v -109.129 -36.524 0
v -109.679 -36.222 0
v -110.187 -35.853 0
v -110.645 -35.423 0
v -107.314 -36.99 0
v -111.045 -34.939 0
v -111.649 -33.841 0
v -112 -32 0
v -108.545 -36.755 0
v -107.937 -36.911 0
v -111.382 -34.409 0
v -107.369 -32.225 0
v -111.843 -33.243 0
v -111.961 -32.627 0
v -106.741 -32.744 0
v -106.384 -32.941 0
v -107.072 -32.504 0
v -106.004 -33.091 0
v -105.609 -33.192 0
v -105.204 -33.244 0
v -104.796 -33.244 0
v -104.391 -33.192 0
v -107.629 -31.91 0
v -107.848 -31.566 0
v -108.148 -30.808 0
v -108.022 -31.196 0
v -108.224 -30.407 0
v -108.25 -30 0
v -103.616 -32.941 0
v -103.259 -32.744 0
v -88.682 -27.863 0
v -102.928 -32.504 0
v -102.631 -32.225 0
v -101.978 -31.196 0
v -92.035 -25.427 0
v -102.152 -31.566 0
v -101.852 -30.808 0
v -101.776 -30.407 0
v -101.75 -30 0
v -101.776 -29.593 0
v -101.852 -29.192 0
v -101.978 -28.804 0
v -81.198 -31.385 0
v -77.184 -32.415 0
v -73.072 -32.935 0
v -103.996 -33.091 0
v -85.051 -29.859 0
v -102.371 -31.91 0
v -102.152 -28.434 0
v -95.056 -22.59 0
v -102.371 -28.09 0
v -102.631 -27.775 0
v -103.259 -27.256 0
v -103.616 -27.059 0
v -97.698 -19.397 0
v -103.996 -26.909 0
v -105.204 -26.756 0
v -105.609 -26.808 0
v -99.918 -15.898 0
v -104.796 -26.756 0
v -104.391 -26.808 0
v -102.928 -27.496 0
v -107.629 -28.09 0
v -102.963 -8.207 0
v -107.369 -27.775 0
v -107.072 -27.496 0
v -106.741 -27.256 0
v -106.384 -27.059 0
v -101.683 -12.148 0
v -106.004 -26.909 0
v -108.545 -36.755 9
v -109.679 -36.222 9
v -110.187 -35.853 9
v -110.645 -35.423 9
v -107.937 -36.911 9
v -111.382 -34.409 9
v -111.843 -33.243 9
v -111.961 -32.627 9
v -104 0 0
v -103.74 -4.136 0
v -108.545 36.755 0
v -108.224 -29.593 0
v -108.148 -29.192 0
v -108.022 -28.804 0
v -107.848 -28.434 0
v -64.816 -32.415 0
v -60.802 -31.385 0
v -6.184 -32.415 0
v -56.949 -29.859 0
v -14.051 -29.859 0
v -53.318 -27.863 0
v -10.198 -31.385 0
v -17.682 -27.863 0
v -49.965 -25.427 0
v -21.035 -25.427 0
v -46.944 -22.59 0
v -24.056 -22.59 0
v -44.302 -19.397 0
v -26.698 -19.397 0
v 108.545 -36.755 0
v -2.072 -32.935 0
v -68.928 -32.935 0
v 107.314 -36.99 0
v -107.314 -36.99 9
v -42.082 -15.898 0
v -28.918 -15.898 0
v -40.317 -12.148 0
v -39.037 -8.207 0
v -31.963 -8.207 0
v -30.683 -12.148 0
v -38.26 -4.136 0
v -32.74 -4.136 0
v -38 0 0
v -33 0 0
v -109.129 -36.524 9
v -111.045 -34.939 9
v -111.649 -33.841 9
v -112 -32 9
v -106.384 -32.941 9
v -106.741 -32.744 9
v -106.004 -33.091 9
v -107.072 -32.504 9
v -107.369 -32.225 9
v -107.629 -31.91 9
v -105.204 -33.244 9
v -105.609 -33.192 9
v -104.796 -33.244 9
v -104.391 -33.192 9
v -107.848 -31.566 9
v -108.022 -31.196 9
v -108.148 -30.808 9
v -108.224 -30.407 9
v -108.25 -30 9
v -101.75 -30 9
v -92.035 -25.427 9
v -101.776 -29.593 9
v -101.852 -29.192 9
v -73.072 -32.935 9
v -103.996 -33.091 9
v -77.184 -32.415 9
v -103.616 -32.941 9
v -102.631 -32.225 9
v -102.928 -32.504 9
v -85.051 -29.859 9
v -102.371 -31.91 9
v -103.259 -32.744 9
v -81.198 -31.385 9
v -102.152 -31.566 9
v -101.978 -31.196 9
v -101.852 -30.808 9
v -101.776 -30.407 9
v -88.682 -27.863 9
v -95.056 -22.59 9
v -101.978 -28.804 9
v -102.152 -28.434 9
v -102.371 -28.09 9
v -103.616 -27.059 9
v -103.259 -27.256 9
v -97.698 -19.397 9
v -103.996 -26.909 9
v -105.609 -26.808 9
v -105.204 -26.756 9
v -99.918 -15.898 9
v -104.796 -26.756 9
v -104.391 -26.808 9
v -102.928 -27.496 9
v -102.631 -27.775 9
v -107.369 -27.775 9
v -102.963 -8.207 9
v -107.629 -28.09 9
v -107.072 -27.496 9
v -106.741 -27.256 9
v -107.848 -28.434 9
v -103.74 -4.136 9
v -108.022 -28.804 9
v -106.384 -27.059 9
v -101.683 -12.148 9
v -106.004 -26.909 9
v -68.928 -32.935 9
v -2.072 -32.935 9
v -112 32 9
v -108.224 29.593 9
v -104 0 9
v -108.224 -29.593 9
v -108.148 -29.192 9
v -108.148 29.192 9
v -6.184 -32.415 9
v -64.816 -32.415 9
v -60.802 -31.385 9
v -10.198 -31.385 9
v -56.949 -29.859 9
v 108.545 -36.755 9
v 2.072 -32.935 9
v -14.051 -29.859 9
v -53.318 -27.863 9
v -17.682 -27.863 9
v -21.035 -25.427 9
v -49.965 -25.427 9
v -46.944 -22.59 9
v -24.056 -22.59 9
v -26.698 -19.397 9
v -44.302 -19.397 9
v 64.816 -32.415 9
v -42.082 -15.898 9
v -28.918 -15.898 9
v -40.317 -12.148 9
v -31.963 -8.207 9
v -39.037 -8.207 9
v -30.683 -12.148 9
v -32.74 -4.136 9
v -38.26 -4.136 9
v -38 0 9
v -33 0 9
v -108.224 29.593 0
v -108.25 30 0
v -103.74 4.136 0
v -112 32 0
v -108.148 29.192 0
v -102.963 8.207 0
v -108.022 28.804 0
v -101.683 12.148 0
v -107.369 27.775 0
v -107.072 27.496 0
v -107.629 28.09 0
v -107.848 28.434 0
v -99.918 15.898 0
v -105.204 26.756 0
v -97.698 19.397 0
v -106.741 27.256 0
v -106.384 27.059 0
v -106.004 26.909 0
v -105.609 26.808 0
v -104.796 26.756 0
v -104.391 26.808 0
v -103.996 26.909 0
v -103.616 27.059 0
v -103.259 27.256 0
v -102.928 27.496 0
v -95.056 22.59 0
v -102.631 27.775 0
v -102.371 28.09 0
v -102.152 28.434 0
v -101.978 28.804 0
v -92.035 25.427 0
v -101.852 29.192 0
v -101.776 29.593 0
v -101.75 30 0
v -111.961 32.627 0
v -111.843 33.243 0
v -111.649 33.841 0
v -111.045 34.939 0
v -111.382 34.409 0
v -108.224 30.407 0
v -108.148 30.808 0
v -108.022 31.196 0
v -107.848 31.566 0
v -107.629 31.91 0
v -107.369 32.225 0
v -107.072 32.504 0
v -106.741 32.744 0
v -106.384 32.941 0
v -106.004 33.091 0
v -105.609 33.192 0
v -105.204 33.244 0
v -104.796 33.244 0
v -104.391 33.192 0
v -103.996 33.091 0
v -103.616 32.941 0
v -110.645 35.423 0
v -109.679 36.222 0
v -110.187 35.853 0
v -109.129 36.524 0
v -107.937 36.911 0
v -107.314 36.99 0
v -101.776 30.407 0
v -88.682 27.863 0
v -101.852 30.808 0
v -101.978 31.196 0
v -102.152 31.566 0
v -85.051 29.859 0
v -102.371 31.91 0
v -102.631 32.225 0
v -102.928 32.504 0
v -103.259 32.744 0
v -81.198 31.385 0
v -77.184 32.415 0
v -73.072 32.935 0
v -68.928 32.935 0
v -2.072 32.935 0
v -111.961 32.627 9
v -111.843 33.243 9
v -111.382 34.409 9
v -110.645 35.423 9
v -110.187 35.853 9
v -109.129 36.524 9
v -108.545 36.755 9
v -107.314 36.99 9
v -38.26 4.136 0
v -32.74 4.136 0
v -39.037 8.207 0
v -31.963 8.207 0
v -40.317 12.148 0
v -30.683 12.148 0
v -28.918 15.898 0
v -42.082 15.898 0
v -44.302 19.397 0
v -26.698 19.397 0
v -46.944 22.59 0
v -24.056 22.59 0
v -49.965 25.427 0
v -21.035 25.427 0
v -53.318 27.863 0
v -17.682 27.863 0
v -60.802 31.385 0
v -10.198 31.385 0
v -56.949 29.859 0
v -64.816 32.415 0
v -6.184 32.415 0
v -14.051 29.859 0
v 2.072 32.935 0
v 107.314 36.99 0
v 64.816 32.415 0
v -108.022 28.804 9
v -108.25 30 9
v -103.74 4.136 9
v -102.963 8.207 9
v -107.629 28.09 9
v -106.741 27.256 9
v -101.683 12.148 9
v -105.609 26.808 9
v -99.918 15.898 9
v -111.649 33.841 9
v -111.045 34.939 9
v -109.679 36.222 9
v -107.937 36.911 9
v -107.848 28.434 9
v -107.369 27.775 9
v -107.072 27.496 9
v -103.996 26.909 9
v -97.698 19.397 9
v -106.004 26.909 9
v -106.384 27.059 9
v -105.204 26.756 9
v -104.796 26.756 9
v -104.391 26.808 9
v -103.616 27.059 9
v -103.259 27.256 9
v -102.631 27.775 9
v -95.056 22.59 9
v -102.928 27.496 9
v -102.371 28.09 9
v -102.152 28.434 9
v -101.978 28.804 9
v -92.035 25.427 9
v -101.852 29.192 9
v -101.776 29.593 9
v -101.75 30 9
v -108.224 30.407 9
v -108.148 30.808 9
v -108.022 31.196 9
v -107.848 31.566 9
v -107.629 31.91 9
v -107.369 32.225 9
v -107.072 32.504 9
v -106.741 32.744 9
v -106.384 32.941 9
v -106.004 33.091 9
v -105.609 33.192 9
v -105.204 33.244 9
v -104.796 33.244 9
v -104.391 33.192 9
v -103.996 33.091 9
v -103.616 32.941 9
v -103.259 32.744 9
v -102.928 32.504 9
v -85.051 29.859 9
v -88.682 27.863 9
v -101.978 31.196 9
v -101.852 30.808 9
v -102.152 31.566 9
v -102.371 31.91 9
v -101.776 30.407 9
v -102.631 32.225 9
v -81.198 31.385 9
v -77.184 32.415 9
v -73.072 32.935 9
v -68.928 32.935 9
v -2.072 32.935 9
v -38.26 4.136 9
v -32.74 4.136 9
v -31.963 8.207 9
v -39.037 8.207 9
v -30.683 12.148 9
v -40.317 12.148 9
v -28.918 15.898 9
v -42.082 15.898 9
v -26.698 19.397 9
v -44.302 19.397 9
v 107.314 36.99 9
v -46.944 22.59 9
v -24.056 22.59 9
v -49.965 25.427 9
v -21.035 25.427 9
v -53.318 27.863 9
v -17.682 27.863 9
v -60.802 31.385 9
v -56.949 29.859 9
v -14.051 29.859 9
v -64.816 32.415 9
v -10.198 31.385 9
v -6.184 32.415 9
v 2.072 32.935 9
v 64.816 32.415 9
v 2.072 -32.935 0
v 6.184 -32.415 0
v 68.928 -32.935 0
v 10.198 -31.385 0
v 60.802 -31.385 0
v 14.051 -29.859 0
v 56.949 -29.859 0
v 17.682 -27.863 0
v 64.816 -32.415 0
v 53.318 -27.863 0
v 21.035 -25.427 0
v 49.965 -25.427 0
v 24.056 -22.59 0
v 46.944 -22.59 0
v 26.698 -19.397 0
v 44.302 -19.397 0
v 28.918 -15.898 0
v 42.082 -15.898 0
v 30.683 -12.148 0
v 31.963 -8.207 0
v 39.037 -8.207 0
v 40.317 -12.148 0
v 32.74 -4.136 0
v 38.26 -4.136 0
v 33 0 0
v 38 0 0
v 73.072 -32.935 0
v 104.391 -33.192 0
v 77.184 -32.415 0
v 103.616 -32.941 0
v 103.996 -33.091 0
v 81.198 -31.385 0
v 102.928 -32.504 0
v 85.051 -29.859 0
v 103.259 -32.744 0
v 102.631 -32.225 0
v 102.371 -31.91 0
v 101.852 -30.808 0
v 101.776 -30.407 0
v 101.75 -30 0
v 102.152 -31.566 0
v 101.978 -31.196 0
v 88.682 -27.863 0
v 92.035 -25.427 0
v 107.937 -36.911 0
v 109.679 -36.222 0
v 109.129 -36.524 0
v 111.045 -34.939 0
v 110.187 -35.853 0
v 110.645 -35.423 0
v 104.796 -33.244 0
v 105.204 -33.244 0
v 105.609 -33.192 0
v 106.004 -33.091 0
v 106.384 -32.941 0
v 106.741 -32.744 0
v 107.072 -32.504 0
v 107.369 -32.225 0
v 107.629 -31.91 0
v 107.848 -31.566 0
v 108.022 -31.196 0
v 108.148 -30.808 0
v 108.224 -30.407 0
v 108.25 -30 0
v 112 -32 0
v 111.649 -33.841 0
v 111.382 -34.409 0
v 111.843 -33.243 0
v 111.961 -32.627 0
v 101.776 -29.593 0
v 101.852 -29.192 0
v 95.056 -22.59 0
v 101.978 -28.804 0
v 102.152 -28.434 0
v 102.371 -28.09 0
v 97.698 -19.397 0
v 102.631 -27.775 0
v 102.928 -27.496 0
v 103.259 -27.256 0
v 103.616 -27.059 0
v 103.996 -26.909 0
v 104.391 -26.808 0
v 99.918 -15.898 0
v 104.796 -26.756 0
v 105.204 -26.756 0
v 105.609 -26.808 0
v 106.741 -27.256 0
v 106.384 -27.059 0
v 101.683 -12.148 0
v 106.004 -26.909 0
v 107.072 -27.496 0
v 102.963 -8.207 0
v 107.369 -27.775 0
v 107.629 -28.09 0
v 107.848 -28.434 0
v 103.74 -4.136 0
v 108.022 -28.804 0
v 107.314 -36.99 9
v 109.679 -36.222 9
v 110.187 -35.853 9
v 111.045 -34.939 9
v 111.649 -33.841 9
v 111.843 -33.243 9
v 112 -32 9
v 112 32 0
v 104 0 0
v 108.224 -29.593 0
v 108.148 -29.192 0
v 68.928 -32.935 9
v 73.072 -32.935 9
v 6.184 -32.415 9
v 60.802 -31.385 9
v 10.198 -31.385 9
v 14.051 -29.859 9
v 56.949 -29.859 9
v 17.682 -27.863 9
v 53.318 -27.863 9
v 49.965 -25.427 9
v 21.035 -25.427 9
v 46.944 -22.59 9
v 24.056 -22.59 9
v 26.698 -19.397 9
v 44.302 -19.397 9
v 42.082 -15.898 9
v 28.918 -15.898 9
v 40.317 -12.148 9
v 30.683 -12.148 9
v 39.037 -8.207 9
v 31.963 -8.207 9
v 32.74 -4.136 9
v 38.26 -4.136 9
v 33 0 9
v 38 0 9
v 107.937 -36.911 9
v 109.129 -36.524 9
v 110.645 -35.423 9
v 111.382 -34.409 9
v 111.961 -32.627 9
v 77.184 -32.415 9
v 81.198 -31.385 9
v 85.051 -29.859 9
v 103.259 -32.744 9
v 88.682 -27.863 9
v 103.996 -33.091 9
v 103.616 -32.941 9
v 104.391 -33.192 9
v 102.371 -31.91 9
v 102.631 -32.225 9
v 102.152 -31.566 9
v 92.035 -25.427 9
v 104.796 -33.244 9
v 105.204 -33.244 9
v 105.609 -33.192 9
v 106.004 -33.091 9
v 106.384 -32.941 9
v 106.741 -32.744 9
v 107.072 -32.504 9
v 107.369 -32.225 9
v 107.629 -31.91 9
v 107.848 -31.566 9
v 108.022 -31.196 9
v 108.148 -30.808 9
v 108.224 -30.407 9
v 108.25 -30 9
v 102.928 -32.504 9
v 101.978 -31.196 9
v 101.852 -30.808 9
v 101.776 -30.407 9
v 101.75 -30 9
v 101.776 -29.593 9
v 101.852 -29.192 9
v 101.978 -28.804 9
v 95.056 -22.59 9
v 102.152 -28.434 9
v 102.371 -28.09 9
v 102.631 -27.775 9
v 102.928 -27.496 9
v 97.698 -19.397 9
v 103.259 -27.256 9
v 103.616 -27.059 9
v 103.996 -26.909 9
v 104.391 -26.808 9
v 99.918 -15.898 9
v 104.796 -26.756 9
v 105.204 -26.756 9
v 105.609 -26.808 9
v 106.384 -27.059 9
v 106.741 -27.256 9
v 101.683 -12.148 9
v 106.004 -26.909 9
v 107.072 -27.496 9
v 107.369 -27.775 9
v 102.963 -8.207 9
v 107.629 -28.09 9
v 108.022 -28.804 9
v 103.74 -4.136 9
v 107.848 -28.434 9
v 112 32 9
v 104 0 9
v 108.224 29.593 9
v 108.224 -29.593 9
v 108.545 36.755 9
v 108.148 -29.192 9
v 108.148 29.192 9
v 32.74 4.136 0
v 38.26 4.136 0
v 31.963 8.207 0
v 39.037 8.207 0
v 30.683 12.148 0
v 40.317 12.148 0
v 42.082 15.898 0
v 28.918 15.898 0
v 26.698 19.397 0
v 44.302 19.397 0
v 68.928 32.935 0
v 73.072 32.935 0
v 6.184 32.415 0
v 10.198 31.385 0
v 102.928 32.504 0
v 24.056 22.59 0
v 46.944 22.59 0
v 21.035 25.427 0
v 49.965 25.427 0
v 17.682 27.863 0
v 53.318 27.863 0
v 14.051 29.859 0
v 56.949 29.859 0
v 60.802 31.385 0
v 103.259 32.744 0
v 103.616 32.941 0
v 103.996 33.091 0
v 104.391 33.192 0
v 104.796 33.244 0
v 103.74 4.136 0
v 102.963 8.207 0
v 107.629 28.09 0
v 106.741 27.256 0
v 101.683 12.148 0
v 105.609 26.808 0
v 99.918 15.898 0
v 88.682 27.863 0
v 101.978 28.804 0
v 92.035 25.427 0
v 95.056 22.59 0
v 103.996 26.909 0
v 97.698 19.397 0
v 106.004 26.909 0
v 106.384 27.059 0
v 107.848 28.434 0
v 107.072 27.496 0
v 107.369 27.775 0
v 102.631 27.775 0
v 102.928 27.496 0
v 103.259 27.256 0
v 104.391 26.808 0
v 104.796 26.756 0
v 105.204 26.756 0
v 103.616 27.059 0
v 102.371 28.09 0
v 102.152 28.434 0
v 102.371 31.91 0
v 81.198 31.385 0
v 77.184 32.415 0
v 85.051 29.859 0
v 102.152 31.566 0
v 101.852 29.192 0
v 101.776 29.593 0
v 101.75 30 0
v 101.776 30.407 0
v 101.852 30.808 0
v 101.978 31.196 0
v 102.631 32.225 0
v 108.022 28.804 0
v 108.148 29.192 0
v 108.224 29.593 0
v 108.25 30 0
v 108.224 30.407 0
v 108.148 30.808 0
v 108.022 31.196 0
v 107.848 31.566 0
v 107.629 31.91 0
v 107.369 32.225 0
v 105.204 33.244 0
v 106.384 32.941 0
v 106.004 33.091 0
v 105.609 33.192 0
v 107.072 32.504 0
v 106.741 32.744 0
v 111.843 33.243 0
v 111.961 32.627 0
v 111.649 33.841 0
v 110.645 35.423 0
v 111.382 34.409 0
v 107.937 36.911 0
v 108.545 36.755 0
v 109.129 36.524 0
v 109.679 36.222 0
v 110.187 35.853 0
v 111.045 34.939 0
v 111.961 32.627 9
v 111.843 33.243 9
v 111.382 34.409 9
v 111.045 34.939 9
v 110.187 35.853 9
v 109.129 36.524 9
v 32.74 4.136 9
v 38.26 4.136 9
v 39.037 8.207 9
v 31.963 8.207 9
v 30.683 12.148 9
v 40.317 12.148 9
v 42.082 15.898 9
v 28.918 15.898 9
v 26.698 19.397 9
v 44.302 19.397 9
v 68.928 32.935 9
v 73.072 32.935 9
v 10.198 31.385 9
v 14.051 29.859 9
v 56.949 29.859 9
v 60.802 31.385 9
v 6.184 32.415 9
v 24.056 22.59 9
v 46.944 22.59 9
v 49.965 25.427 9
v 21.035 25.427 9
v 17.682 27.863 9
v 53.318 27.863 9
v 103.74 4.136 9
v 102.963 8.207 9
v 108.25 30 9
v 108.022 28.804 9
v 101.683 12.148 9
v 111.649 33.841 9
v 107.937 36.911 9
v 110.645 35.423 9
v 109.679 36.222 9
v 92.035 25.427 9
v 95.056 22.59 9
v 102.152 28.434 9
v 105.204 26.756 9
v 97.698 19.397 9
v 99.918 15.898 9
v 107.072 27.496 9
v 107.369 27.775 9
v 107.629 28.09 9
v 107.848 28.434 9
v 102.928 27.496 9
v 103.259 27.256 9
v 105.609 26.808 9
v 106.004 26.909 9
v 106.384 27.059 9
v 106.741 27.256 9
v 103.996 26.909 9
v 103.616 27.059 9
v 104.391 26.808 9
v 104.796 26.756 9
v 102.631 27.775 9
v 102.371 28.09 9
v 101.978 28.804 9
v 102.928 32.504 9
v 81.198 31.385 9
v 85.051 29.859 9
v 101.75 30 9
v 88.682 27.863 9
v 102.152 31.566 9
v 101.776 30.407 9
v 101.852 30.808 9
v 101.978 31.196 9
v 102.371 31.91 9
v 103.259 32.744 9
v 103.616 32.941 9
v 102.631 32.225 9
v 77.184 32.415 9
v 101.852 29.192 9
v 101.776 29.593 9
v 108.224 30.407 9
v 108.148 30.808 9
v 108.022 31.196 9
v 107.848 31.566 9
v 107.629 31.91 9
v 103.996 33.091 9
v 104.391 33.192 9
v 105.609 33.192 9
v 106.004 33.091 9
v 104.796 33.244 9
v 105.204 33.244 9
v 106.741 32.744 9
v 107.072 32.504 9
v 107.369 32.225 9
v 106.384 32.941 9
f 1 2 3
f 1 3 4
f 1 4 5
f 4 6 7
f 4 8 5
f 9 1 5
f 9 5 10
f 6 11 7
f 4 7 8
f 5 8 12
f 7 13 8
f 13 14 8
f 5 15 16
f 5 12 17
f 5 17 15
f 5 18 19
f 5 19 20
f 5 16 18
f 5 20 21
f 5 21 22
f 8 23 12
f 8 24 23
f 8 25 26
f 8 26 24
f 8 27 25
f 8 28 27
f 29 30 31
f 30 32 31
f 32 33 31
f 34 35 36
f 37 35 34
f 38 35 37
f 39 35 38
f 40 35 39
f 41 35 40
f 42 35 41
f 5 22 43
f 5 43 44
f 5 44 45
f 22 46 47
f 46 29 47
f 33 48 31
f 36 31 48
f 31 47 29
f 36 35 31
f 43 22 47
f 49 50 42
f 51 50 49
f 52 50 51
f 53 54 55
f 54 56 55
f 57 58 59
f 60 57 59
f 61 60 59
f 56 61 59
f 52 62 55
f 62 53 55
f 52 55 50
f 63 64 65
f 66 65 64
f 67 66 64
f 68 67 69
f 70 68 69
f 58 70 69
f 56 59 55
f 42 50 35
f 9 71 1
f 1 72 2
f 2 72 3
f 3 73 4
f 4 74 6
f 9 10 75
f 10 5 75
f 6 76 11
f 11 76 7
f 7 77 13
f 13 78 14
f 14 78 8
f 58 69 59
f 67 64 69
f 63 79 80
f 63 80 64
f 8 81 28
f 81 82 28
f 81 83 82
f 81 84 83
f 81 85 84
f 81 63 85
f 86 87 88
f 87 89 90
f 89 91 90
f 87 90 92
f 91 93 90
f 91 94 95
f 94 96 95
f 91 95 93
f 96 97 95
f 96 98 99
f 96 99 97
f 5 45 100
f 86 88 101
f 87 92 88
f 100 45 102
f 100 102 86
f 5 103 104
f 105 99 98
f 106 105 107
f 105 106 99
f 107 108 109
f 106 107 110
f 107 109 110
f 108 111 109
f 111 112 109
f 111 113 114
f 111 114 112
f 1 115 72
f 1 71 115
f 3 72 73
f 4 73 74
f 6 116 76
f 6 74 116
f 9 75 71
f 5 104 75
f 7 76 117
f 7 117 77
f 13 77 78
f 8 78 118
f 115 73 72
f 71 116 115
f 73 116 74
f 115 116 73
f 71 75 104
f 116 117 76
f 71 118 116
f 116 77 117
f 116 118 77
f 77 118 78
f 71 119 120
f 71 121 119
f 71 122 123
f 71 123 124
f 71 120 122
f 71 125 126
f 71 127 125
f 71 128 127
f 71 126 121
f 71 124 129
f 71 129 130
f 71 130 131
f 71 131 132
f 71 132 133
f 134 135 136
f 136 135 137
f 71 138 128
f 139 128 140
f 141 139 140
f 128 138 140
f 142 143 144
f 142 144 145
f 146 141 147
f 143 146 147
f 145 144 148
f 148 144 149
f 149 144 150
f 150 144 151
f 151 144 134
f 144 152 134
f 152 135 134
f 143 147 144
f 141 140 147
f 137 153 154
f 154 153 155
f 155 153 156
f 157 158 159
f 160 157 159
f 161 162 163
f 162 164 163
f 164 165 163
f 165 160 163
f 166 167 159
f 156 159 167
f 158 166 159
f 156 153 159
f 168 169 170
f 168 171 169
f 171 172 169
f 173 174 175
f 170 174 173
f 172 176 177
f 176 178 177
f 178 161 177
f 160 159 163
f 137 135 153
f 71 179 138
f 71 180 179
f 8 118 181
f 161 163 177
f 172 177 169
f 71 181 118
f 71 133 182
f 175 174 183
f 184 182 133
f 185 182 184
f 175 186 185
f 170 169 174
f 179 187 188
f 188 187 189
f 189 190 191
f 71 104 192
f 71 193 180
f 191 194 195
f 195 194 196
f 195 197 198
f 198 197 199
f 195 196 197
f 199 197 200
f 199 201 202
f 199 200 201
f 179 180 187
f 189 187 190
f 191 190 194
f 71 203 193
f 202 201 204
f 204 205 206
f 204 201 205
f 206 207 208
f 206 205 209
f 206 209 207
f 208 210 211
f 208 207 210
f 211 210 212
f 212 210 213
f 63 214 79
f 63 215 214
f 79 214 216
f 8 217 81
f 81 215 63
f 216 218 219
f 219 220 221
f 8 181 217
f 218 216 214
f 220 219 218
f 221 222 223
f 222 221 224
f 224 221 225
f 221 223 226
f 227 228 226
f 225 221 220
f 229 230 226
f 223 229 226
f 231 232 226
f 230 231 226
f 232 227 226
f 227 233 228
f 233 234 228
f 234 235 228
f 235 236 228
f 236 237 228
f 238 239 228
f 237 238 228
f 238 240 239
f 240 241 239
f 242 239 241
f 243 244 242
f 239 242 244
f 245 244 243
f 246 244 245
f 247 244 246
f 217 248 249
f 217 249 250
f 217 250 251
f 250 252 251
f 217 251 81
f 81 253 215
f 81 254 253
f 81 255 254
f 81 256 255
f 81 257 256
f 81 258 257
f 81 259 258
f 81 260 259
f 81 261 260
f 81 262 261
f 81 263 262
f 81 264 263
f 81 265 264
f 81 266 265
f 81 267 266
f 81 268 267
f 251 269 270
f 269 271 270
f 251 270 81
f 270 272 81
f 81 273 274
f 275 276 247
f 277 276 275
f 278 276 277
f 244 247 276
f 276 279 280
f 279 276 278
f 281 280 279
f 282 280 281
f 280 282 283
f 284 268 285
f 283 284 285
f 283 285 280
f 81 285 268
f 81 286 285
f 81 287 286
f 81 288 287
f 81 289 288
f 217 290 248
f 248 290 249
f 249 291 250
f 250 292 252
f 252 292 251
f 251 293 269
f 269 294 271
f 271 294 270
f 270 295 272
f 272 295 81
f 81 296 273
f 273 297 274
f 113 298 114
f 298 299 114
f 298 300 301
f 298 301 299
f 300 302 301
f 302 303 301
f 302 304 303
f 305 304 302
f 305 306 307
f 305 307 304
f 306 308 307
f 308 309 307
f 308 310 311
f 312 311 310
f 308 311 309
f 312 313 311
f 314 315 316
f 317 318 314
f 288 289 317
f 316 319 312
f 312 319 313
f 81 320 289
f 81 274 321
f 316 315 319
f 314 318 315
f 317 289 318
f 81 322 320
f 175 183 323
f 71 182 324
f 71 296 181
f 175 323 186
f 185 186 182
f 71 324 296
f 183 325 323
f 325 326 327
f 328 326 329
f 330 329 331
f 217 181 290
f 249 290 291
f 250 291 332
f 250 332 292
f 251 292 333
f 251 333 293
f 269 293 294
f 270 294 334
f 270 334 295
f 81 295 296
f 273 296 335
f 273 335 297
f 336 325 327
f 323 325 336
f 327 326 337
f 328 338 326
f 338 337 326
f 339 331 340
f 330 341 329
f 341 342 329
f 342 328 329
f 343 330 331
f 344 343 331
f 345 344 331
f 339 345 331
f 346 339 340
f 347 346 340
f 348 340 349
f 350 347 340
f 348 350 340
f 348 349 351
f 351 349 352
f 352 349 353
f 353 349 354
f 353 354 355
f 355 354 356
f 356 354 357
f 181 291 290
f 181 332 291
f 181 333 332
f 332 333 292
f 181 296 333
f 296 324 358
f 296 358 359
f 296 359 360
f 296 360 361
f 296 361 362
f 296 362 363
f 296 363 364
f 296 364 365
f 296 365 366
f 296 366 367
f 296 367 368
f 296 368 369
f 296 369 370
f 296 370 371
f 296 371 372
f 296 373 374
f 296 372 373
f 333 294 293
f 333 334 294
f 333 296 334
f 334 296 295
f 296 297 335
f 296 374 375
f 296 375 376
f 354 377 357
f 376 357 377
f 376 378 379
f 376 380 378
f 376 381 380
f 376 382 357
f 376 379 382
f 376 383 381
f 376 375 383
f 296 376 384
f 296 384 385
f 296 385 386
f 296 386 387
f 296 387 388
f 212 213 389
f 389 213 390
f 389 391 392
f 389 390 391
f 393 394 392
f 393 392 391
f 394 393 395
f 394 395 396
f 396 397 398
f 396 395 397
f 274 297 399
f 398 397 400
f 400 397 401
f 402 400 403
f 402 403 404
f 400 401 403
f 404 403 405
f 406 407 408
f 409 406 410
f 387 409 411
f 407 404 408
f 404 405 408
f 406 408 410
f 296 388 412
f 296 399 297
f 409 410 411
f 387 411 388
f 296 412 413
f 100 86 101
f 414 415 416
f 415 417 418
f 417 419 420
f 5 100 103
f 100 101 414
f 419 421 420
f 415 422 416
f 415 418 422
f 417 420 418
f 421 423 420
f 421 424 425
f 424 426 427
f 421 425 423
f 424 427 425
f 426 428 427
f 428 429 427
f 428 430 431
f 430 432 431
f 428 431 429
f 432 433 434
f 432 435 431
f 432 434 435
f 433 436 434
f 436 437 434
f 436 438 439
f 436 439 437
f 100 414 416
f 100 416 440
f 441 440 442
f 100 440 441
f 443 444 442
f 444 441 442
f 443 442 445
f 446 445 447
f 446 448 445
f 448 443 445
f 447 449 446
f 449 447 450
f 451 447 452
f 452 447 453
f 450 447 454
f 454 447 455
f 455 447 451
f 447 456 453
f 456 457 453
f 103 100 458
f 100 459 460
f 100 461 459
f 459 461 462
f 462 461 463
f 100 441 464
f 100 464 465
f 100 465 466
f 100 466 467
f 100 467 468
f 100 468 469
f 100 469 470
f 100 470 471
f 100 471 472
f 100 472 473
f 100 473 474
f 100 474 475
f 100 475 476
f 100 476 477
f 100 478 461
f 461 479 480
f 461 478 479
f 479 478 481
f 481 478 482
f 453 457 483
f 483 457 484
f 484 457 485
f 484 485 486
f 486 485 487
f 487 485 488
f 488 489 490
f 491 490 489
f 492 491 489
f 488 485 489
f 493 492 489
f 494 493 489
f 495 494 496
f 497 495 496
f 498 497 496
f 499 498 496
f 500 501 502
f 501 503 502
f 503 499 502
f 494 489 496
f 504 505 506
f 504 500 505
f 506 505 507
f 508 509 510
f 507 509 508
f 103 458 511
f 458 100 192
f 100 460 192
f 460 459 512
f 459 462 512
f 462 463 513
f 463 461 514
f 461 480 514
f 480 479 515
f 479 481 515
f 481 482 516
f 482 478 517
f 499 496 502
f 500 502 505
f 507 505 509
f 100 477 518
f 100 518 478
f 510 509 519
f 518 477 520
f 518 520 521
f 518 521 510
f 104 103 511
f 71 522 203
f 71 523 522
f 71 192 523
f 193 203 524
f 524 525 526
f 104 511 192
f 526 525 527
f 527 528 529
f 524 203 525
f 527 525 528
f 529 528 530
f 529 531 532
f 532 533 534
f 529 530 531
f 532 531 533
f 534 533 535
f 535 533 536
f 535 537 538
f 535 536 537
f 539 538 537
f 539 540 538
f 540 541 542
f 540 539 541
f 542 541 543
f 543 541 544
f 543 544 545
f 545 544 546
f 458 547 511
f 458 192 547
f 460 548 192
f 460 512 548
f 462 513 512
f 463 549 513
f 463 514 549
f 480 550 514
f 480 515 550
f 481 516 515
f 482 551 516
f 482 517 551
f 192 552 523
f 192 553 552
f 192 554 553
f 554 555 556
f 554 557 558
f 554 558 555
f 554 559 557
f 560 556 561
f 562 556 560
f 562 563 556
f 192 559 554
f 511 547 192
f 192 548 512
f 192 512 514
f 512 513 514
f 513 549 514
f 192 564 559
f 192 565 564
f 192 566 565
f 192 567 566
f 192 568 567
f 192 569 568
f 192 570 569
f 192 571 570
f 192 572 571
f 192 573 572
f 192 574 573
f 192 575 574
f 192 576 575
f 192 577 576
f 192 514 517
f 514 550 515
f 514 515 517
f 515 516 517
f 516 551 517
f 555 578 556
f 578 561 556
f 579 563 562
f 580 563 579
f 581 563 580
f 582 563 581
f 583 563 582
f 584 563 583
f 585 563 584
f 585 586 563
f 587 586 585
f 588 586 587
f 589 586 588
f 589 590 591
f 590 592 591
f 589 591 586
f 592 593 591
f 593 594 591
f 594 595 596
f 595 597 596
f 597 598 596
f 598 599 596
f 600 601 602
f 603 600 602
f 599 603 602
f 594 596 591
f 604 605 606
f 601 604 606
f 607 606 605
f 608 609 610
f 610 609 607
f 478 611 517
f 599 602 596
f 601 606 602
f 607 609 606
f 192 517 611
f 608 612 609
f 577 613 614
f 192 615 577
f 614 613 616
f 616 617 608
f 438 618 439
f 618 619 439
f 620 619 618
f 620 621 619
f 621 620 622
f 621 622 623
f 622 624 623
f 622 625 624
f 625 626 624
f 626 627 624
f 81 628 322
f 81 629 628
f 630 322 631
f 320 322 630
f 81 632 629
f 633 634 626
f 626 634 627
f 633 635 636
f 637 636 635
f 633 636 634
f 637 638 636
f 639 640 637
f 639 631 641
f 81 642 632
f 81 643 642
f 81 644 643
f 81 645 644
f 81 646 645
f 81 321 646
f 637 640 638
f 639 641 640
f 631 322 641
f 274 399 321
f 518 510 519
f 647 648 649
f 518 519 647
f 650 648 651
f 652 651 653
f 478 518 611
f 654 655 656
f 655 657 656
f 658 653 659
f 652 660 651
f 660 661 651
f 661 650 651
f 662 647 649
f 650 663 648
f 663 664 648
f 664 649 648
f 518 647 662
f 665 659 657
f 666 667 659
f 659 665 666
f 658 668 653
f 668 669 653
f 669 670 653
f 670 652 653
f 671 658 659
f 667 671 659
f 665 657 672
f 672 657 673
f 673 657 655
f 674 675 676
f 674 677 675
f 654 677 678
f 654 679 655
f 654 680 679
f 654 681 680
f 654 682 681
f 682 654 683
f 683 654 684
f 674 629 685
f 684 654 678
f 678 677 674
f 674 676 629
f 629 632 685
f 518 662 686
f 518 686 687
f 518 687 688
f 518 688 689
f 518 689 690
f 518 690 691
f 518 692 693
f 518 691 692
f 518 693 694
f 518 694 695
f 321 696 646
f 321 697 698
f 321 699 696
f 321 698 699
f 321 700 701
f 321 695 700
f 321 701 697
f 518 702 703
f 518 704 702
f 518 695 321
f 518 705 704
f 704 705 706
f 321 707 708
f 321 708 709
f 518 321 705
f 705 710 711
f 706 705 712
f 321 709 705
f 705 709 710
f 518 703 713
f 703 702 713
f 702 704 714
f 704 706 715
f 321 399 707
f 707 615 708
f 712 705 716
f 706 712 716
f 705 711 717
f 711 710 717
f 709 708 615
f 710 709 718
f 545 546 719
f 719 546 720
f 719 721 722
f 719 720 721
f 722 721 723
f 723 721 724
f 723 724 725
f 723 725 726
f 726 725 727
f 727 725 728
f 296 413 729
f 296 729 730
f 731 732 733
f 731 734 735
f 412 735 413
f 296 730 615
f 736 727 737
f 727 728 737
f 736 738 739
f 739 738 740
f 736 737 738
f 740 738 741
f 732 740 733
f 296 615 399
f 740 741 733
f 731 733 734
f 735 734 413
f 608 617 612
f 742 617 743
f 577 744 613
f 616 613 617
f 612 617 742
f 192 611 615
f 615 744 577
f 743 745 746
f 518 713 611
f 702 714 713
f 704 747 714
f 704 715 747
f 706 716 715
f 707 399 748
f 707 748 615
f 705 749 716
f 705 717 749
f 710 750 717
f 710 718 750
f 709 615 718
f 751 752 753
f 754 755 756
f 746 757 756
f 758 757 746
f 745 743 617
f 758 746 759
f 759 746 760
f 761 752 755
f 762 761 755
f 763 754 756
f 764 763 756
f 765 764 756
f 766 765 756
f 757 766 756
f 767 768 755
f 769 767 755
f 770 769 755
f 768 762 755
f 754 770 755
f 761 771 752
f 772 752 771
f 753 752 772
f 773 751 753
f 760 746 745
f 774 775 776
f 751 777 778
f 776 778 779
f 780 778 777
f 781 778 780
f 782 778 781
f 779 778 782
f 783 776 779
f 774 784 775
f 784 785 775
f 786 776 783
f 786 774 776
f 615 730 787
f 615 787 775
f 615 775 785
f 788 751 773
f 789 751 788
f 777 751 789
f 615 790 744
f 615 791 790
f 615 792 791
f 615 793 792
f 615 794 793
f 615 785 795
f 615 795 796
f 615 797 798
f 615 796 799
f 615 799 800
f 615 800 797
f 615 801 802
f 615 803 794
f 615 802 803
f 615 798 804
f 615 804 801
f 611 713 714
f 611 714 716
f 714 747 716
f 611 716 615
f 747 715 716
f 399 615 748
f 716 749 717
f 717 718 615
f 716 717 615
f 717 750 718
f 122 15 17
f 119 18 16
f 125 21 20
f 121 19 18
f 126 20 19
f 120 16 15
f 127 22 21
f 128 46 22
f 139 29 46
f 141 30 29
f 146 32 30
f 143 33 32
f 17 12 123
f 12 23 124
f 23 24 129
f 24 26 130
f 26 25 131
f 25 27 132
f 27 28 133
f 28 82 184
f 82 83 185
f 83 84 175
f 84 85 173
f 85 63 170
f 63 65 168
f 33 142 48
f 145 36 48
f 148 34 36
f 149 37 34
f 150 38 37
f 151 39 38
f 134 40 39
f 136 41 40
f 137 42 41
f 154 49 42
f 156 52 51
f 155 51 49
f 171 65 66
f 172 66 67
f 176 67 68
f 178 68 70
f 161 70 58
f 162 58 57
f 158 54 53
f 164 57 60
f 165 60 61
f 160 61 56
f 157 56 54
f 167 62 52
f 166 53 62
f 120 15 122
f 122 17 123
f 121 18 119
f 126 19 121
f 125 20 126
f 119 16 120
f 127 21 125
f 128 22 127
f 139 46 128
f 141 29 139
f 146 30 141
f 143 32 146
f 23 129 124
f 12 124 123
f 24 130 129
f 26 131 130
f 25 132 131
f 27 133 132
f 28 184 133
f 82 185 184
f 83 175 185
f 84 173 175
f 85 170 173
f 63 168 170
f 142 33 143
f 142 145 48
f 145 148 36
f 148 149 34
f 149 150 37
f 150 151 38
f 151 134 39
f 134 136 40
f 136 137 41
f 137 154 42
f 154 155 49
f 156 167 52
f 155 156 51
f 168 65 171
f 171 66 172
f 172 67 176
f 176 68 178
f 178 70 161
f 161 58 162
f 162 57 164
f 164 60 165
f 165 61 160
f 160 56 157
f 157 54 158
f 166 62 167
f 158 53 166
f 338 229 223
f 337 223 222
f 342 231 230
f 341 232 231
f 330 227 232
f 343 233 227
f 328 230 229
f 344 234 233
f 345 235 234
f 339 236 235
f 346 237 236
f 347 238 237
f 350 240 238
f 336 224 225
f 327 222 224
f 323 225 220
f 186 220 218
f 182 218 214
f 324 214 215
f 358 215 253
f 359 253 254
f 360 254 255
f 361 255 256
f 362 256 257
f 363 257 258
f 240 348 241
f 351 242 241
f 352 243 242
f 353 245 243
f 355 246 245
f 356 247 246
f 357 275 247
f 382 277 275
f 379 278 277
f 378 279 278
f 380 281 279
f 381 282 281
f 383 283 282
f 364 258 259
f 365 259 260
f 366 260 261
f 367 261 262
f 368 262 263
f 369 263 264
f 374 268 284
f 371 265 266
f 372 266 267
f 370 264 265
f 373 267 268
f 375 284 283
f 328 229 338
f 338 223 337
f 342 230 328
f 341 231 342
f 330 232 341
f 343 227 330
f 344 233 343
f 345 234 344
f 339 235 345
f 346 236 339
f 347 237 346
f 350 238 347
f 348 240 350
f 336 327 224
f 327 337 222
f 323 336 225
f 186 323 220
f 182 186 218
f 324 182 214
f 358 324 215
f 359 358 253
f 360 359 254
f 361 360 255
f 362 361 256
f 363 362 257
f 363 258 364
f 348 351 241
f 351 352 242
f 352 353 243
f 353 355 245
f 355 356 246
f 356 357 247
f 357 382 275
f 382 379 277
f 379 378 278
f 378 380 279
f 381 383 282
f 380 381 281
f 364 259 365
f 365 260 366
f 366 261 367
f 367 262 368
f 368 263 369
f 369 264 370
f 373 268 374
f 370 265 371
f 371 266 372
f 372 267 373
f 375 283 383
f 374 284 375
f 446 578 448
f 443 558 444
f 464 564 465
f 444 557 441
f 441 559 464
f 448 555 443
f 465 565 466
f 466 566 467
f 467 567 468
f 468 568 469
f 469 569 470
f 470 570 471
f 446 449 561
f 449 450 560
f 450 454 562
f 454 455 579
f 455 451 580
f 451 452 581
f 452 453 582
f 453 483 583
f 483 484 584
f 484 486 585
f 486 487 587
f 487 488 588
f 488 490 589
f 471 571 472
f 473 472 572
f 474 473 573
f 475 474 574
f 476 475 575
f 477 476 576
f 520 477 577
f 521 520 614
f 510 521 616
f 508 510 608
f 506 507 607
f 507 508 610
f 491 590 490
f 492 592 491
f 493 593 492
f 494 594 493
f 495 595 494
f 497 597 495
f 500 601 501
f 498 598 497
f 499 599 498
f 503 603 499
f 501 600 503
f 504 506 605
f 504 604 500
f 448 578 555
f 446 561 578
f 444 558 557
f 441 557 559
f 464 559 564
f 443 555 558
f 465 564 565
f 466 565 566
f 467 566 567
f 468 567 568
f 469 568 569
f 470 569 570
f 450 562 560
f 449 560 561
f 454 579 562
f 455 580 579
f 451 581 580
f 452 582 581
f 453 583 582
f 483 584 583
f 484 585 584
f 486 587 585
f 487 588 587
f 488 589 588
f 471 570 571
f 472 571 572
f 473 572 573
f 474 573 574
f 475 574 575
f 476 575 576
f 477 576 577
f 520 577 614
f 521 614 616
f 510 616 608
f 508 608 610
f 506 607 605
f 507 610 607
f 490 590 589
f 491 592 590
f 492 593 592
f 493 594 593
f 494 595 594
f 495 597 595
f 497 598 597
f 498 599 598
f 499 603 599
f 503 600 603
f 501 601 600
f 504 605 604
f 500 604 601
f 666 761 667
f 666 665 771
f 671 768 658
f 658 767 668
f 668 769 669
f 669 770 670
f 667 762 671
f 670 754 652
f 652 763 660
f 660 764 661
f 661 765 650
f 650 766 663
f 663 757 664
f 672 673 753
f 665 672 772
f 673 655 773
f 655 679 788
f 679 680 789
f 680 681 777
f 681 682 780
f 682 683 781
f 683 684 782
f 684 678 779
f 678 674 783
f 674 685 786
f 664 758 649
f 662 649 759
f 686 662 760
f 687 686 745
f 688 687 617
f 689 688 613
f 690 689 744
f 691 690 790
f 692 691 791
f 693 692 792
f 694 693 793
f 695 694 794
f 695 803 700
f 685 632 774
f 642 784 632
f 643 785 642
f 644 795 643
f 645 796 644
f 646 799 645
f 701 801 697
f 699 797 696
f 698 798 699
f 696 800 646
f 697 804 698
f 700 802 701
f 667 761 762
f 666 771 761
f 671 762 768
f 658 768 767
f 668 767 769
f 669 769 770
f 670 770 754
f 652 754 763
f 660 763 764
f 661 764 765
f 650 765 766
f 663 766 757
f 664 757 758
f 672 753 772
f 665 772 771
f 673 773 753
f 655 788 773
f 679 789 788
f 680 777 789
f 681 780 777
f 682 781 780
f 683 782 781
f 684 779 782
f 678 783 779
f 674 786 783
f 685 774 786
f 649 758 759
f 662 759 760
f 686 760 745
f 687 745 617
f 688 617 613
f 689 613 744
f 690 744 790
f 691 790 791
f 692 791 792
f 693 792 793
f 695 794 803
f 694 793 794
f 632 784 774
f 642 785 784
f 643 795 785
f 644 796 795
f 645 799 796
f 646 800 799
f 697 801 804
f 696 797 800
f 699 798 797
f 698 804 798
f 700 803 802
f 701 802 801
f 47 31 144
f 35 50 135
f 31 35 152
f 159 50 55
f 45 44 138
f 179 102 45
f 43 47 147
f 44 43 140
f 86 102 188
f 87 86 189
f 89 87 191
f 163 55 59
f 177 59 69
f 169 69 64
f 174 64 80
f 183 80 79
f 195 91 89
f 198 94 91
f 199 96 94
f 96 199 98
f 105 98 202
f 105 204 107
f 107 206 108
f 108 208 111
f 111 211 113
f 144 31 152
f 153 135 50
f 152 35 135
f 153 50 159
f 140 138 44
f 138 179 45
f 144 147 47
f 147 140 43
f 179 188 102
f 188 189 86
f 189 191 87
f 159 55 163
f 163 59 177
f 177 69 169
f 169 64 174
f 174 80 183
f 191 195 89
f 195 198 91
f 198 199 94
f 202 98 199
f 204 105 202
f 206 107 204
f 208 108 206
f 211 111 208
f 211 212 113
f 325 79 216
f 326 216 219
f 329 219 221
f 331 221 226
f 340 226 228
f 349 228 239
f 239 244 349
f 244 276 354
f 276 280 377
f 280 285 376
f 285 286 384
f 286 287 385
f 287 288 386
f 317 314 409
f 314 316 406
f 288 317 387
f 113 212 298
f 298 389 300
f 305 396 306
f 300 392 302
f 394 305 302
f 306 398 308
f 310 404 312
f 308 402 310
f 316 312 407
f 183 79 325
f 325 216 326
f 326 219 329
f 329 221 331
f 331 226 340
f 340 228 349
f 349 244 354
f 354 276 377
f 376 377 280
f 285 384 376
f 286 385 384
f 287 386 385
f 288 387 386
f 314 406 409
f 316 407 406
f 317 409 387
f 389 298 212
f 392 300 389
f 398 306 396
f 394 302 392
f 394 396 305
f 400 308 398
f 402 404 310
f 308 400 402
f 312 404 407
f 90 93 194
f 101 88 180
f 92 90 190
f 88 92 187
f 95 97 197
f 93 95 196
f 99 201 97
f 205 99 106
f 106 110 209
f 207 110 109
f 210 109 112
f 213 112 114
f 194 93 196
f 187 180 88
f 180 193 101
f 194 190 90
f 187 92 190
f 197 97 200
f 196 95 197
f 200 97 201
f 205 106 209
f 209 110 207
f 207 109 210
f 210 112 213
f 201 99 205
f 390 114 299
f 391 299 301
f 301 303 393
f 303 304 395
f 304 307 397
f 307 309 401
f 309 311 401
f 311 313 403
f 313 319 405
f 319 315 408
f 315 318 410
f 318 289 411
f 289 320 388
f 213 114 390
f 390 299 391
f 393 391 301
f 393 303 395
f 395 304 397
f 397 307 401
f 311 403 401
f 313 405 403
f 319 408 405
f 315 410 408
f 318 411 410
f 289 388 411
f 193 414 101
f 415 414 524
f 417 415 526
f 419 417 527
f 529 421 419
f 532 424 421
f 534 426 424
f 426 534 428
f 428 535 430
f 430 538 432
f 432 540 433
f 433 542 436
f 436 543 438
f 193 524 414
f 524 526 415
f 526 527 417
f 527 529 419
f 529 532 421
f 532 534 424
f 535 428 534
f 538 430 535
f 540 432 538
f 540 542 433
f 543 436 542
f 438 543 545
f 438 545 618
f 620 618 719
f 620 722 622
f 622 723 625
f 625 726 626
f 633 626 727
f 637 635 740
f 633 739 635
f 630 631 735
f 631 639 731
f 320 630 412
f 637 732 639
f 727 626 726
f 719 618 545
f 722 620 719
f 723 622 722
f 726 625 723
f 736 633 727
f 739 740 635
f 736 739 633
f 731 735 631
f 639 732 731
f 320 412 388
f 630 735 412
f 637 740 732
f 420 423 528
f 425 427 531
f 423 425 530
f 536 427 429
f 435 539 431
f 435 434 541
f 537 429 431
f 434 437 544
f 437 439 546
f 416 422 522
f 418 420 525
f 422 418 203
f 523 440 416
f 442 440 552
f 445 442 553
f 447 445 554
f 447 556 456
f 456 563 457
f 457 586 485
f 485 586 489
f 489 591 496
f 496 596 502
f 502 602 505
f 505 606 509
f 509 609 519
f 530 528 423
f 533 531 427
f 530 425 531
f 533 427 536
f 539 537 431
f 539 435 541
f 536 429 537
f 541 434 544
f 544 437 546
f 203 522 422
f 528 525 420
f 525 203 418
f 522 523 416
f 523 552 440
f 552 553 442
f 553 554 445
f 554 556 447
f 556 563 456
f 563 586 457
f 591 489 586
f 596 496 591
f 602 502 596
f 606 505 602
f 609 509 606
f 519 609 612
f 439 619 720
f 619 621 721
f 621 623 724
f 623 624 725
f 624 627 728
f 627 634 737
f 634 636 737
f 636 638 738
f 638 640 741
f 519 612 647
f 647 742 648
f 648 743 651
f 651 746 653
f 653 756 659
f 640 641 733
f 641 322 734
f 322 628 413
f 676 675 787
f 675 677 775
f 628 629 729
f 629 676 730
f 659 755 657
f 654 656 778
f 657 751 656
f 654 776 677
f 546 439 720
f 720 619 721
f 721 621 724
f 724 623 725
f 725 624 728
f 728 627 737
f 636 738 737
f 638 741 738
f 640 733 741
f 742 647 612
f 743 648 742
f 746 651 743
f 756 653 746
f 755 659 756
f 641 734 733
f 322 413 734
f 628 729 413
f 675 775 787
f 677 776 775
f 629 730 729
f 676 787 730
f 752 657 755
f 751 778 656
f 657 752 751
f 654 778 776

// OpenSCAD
$fn = 50;

difference() {
	union() {
		hull() {
			translate(v = [-107.0, 32.0, 0]) {
				cylinder(h = 9, r = 5);
			}
			translate(v = [107.0, 32.0, 0]) {
				cylinder(h = 9, r = 5);
			}
			translate(v = [-107.0, -32.0, 0]) {
				cylinder(h = 9, r = 5);
			}
			translate(v = [107.0, -32.0, 0]) {
				cylinder(h = 9, r = 5);
			}
		}
	}
	union() {
		translate(v = [-105.0, -30.0, -100.0]) {
			cylinder(h = 200, r = 3.25);
		}
		translate(v = [-105.0, 30.0, -100.0]) {
			cylinder(h = 200, r = 3.25);
		}
		translate(v = [105.0, -30.0, -100.0]) {
			cylinder(h = 200, r = 3.25);
		}
		translate(v = [105.0, 30.0, -100.0]) {
			cylinder(h = 200, r = 3.25);
		}
		translate(v = [-105.0, -30.0, -100.0]) {
			cylinder(h = 200, r = 1.8);
		}
		translate(v = [-105.0, 30.0, -100.0]) {
			cylinder(h = 200, r = 1.8);
		}
		translate(v = [105.0, -30.0, -100.0]) {
			cylinder(h = 200, r = 1.8);
		}
		translate(v = [105.0, 30.0, -100.0]) {
			cylinder(h = 200, r = 1.8);
		}
		translate(v = [-71.0, 0, 0.0]) {
			cylinder(h = 9, r = 33.0);
		}
		cylinder(h = 9, r = 33.0);
		translate(v = [71.0, 0, 0.0]) {
			cylinder(h = 9, r = 33.0);
		}
	}
}
